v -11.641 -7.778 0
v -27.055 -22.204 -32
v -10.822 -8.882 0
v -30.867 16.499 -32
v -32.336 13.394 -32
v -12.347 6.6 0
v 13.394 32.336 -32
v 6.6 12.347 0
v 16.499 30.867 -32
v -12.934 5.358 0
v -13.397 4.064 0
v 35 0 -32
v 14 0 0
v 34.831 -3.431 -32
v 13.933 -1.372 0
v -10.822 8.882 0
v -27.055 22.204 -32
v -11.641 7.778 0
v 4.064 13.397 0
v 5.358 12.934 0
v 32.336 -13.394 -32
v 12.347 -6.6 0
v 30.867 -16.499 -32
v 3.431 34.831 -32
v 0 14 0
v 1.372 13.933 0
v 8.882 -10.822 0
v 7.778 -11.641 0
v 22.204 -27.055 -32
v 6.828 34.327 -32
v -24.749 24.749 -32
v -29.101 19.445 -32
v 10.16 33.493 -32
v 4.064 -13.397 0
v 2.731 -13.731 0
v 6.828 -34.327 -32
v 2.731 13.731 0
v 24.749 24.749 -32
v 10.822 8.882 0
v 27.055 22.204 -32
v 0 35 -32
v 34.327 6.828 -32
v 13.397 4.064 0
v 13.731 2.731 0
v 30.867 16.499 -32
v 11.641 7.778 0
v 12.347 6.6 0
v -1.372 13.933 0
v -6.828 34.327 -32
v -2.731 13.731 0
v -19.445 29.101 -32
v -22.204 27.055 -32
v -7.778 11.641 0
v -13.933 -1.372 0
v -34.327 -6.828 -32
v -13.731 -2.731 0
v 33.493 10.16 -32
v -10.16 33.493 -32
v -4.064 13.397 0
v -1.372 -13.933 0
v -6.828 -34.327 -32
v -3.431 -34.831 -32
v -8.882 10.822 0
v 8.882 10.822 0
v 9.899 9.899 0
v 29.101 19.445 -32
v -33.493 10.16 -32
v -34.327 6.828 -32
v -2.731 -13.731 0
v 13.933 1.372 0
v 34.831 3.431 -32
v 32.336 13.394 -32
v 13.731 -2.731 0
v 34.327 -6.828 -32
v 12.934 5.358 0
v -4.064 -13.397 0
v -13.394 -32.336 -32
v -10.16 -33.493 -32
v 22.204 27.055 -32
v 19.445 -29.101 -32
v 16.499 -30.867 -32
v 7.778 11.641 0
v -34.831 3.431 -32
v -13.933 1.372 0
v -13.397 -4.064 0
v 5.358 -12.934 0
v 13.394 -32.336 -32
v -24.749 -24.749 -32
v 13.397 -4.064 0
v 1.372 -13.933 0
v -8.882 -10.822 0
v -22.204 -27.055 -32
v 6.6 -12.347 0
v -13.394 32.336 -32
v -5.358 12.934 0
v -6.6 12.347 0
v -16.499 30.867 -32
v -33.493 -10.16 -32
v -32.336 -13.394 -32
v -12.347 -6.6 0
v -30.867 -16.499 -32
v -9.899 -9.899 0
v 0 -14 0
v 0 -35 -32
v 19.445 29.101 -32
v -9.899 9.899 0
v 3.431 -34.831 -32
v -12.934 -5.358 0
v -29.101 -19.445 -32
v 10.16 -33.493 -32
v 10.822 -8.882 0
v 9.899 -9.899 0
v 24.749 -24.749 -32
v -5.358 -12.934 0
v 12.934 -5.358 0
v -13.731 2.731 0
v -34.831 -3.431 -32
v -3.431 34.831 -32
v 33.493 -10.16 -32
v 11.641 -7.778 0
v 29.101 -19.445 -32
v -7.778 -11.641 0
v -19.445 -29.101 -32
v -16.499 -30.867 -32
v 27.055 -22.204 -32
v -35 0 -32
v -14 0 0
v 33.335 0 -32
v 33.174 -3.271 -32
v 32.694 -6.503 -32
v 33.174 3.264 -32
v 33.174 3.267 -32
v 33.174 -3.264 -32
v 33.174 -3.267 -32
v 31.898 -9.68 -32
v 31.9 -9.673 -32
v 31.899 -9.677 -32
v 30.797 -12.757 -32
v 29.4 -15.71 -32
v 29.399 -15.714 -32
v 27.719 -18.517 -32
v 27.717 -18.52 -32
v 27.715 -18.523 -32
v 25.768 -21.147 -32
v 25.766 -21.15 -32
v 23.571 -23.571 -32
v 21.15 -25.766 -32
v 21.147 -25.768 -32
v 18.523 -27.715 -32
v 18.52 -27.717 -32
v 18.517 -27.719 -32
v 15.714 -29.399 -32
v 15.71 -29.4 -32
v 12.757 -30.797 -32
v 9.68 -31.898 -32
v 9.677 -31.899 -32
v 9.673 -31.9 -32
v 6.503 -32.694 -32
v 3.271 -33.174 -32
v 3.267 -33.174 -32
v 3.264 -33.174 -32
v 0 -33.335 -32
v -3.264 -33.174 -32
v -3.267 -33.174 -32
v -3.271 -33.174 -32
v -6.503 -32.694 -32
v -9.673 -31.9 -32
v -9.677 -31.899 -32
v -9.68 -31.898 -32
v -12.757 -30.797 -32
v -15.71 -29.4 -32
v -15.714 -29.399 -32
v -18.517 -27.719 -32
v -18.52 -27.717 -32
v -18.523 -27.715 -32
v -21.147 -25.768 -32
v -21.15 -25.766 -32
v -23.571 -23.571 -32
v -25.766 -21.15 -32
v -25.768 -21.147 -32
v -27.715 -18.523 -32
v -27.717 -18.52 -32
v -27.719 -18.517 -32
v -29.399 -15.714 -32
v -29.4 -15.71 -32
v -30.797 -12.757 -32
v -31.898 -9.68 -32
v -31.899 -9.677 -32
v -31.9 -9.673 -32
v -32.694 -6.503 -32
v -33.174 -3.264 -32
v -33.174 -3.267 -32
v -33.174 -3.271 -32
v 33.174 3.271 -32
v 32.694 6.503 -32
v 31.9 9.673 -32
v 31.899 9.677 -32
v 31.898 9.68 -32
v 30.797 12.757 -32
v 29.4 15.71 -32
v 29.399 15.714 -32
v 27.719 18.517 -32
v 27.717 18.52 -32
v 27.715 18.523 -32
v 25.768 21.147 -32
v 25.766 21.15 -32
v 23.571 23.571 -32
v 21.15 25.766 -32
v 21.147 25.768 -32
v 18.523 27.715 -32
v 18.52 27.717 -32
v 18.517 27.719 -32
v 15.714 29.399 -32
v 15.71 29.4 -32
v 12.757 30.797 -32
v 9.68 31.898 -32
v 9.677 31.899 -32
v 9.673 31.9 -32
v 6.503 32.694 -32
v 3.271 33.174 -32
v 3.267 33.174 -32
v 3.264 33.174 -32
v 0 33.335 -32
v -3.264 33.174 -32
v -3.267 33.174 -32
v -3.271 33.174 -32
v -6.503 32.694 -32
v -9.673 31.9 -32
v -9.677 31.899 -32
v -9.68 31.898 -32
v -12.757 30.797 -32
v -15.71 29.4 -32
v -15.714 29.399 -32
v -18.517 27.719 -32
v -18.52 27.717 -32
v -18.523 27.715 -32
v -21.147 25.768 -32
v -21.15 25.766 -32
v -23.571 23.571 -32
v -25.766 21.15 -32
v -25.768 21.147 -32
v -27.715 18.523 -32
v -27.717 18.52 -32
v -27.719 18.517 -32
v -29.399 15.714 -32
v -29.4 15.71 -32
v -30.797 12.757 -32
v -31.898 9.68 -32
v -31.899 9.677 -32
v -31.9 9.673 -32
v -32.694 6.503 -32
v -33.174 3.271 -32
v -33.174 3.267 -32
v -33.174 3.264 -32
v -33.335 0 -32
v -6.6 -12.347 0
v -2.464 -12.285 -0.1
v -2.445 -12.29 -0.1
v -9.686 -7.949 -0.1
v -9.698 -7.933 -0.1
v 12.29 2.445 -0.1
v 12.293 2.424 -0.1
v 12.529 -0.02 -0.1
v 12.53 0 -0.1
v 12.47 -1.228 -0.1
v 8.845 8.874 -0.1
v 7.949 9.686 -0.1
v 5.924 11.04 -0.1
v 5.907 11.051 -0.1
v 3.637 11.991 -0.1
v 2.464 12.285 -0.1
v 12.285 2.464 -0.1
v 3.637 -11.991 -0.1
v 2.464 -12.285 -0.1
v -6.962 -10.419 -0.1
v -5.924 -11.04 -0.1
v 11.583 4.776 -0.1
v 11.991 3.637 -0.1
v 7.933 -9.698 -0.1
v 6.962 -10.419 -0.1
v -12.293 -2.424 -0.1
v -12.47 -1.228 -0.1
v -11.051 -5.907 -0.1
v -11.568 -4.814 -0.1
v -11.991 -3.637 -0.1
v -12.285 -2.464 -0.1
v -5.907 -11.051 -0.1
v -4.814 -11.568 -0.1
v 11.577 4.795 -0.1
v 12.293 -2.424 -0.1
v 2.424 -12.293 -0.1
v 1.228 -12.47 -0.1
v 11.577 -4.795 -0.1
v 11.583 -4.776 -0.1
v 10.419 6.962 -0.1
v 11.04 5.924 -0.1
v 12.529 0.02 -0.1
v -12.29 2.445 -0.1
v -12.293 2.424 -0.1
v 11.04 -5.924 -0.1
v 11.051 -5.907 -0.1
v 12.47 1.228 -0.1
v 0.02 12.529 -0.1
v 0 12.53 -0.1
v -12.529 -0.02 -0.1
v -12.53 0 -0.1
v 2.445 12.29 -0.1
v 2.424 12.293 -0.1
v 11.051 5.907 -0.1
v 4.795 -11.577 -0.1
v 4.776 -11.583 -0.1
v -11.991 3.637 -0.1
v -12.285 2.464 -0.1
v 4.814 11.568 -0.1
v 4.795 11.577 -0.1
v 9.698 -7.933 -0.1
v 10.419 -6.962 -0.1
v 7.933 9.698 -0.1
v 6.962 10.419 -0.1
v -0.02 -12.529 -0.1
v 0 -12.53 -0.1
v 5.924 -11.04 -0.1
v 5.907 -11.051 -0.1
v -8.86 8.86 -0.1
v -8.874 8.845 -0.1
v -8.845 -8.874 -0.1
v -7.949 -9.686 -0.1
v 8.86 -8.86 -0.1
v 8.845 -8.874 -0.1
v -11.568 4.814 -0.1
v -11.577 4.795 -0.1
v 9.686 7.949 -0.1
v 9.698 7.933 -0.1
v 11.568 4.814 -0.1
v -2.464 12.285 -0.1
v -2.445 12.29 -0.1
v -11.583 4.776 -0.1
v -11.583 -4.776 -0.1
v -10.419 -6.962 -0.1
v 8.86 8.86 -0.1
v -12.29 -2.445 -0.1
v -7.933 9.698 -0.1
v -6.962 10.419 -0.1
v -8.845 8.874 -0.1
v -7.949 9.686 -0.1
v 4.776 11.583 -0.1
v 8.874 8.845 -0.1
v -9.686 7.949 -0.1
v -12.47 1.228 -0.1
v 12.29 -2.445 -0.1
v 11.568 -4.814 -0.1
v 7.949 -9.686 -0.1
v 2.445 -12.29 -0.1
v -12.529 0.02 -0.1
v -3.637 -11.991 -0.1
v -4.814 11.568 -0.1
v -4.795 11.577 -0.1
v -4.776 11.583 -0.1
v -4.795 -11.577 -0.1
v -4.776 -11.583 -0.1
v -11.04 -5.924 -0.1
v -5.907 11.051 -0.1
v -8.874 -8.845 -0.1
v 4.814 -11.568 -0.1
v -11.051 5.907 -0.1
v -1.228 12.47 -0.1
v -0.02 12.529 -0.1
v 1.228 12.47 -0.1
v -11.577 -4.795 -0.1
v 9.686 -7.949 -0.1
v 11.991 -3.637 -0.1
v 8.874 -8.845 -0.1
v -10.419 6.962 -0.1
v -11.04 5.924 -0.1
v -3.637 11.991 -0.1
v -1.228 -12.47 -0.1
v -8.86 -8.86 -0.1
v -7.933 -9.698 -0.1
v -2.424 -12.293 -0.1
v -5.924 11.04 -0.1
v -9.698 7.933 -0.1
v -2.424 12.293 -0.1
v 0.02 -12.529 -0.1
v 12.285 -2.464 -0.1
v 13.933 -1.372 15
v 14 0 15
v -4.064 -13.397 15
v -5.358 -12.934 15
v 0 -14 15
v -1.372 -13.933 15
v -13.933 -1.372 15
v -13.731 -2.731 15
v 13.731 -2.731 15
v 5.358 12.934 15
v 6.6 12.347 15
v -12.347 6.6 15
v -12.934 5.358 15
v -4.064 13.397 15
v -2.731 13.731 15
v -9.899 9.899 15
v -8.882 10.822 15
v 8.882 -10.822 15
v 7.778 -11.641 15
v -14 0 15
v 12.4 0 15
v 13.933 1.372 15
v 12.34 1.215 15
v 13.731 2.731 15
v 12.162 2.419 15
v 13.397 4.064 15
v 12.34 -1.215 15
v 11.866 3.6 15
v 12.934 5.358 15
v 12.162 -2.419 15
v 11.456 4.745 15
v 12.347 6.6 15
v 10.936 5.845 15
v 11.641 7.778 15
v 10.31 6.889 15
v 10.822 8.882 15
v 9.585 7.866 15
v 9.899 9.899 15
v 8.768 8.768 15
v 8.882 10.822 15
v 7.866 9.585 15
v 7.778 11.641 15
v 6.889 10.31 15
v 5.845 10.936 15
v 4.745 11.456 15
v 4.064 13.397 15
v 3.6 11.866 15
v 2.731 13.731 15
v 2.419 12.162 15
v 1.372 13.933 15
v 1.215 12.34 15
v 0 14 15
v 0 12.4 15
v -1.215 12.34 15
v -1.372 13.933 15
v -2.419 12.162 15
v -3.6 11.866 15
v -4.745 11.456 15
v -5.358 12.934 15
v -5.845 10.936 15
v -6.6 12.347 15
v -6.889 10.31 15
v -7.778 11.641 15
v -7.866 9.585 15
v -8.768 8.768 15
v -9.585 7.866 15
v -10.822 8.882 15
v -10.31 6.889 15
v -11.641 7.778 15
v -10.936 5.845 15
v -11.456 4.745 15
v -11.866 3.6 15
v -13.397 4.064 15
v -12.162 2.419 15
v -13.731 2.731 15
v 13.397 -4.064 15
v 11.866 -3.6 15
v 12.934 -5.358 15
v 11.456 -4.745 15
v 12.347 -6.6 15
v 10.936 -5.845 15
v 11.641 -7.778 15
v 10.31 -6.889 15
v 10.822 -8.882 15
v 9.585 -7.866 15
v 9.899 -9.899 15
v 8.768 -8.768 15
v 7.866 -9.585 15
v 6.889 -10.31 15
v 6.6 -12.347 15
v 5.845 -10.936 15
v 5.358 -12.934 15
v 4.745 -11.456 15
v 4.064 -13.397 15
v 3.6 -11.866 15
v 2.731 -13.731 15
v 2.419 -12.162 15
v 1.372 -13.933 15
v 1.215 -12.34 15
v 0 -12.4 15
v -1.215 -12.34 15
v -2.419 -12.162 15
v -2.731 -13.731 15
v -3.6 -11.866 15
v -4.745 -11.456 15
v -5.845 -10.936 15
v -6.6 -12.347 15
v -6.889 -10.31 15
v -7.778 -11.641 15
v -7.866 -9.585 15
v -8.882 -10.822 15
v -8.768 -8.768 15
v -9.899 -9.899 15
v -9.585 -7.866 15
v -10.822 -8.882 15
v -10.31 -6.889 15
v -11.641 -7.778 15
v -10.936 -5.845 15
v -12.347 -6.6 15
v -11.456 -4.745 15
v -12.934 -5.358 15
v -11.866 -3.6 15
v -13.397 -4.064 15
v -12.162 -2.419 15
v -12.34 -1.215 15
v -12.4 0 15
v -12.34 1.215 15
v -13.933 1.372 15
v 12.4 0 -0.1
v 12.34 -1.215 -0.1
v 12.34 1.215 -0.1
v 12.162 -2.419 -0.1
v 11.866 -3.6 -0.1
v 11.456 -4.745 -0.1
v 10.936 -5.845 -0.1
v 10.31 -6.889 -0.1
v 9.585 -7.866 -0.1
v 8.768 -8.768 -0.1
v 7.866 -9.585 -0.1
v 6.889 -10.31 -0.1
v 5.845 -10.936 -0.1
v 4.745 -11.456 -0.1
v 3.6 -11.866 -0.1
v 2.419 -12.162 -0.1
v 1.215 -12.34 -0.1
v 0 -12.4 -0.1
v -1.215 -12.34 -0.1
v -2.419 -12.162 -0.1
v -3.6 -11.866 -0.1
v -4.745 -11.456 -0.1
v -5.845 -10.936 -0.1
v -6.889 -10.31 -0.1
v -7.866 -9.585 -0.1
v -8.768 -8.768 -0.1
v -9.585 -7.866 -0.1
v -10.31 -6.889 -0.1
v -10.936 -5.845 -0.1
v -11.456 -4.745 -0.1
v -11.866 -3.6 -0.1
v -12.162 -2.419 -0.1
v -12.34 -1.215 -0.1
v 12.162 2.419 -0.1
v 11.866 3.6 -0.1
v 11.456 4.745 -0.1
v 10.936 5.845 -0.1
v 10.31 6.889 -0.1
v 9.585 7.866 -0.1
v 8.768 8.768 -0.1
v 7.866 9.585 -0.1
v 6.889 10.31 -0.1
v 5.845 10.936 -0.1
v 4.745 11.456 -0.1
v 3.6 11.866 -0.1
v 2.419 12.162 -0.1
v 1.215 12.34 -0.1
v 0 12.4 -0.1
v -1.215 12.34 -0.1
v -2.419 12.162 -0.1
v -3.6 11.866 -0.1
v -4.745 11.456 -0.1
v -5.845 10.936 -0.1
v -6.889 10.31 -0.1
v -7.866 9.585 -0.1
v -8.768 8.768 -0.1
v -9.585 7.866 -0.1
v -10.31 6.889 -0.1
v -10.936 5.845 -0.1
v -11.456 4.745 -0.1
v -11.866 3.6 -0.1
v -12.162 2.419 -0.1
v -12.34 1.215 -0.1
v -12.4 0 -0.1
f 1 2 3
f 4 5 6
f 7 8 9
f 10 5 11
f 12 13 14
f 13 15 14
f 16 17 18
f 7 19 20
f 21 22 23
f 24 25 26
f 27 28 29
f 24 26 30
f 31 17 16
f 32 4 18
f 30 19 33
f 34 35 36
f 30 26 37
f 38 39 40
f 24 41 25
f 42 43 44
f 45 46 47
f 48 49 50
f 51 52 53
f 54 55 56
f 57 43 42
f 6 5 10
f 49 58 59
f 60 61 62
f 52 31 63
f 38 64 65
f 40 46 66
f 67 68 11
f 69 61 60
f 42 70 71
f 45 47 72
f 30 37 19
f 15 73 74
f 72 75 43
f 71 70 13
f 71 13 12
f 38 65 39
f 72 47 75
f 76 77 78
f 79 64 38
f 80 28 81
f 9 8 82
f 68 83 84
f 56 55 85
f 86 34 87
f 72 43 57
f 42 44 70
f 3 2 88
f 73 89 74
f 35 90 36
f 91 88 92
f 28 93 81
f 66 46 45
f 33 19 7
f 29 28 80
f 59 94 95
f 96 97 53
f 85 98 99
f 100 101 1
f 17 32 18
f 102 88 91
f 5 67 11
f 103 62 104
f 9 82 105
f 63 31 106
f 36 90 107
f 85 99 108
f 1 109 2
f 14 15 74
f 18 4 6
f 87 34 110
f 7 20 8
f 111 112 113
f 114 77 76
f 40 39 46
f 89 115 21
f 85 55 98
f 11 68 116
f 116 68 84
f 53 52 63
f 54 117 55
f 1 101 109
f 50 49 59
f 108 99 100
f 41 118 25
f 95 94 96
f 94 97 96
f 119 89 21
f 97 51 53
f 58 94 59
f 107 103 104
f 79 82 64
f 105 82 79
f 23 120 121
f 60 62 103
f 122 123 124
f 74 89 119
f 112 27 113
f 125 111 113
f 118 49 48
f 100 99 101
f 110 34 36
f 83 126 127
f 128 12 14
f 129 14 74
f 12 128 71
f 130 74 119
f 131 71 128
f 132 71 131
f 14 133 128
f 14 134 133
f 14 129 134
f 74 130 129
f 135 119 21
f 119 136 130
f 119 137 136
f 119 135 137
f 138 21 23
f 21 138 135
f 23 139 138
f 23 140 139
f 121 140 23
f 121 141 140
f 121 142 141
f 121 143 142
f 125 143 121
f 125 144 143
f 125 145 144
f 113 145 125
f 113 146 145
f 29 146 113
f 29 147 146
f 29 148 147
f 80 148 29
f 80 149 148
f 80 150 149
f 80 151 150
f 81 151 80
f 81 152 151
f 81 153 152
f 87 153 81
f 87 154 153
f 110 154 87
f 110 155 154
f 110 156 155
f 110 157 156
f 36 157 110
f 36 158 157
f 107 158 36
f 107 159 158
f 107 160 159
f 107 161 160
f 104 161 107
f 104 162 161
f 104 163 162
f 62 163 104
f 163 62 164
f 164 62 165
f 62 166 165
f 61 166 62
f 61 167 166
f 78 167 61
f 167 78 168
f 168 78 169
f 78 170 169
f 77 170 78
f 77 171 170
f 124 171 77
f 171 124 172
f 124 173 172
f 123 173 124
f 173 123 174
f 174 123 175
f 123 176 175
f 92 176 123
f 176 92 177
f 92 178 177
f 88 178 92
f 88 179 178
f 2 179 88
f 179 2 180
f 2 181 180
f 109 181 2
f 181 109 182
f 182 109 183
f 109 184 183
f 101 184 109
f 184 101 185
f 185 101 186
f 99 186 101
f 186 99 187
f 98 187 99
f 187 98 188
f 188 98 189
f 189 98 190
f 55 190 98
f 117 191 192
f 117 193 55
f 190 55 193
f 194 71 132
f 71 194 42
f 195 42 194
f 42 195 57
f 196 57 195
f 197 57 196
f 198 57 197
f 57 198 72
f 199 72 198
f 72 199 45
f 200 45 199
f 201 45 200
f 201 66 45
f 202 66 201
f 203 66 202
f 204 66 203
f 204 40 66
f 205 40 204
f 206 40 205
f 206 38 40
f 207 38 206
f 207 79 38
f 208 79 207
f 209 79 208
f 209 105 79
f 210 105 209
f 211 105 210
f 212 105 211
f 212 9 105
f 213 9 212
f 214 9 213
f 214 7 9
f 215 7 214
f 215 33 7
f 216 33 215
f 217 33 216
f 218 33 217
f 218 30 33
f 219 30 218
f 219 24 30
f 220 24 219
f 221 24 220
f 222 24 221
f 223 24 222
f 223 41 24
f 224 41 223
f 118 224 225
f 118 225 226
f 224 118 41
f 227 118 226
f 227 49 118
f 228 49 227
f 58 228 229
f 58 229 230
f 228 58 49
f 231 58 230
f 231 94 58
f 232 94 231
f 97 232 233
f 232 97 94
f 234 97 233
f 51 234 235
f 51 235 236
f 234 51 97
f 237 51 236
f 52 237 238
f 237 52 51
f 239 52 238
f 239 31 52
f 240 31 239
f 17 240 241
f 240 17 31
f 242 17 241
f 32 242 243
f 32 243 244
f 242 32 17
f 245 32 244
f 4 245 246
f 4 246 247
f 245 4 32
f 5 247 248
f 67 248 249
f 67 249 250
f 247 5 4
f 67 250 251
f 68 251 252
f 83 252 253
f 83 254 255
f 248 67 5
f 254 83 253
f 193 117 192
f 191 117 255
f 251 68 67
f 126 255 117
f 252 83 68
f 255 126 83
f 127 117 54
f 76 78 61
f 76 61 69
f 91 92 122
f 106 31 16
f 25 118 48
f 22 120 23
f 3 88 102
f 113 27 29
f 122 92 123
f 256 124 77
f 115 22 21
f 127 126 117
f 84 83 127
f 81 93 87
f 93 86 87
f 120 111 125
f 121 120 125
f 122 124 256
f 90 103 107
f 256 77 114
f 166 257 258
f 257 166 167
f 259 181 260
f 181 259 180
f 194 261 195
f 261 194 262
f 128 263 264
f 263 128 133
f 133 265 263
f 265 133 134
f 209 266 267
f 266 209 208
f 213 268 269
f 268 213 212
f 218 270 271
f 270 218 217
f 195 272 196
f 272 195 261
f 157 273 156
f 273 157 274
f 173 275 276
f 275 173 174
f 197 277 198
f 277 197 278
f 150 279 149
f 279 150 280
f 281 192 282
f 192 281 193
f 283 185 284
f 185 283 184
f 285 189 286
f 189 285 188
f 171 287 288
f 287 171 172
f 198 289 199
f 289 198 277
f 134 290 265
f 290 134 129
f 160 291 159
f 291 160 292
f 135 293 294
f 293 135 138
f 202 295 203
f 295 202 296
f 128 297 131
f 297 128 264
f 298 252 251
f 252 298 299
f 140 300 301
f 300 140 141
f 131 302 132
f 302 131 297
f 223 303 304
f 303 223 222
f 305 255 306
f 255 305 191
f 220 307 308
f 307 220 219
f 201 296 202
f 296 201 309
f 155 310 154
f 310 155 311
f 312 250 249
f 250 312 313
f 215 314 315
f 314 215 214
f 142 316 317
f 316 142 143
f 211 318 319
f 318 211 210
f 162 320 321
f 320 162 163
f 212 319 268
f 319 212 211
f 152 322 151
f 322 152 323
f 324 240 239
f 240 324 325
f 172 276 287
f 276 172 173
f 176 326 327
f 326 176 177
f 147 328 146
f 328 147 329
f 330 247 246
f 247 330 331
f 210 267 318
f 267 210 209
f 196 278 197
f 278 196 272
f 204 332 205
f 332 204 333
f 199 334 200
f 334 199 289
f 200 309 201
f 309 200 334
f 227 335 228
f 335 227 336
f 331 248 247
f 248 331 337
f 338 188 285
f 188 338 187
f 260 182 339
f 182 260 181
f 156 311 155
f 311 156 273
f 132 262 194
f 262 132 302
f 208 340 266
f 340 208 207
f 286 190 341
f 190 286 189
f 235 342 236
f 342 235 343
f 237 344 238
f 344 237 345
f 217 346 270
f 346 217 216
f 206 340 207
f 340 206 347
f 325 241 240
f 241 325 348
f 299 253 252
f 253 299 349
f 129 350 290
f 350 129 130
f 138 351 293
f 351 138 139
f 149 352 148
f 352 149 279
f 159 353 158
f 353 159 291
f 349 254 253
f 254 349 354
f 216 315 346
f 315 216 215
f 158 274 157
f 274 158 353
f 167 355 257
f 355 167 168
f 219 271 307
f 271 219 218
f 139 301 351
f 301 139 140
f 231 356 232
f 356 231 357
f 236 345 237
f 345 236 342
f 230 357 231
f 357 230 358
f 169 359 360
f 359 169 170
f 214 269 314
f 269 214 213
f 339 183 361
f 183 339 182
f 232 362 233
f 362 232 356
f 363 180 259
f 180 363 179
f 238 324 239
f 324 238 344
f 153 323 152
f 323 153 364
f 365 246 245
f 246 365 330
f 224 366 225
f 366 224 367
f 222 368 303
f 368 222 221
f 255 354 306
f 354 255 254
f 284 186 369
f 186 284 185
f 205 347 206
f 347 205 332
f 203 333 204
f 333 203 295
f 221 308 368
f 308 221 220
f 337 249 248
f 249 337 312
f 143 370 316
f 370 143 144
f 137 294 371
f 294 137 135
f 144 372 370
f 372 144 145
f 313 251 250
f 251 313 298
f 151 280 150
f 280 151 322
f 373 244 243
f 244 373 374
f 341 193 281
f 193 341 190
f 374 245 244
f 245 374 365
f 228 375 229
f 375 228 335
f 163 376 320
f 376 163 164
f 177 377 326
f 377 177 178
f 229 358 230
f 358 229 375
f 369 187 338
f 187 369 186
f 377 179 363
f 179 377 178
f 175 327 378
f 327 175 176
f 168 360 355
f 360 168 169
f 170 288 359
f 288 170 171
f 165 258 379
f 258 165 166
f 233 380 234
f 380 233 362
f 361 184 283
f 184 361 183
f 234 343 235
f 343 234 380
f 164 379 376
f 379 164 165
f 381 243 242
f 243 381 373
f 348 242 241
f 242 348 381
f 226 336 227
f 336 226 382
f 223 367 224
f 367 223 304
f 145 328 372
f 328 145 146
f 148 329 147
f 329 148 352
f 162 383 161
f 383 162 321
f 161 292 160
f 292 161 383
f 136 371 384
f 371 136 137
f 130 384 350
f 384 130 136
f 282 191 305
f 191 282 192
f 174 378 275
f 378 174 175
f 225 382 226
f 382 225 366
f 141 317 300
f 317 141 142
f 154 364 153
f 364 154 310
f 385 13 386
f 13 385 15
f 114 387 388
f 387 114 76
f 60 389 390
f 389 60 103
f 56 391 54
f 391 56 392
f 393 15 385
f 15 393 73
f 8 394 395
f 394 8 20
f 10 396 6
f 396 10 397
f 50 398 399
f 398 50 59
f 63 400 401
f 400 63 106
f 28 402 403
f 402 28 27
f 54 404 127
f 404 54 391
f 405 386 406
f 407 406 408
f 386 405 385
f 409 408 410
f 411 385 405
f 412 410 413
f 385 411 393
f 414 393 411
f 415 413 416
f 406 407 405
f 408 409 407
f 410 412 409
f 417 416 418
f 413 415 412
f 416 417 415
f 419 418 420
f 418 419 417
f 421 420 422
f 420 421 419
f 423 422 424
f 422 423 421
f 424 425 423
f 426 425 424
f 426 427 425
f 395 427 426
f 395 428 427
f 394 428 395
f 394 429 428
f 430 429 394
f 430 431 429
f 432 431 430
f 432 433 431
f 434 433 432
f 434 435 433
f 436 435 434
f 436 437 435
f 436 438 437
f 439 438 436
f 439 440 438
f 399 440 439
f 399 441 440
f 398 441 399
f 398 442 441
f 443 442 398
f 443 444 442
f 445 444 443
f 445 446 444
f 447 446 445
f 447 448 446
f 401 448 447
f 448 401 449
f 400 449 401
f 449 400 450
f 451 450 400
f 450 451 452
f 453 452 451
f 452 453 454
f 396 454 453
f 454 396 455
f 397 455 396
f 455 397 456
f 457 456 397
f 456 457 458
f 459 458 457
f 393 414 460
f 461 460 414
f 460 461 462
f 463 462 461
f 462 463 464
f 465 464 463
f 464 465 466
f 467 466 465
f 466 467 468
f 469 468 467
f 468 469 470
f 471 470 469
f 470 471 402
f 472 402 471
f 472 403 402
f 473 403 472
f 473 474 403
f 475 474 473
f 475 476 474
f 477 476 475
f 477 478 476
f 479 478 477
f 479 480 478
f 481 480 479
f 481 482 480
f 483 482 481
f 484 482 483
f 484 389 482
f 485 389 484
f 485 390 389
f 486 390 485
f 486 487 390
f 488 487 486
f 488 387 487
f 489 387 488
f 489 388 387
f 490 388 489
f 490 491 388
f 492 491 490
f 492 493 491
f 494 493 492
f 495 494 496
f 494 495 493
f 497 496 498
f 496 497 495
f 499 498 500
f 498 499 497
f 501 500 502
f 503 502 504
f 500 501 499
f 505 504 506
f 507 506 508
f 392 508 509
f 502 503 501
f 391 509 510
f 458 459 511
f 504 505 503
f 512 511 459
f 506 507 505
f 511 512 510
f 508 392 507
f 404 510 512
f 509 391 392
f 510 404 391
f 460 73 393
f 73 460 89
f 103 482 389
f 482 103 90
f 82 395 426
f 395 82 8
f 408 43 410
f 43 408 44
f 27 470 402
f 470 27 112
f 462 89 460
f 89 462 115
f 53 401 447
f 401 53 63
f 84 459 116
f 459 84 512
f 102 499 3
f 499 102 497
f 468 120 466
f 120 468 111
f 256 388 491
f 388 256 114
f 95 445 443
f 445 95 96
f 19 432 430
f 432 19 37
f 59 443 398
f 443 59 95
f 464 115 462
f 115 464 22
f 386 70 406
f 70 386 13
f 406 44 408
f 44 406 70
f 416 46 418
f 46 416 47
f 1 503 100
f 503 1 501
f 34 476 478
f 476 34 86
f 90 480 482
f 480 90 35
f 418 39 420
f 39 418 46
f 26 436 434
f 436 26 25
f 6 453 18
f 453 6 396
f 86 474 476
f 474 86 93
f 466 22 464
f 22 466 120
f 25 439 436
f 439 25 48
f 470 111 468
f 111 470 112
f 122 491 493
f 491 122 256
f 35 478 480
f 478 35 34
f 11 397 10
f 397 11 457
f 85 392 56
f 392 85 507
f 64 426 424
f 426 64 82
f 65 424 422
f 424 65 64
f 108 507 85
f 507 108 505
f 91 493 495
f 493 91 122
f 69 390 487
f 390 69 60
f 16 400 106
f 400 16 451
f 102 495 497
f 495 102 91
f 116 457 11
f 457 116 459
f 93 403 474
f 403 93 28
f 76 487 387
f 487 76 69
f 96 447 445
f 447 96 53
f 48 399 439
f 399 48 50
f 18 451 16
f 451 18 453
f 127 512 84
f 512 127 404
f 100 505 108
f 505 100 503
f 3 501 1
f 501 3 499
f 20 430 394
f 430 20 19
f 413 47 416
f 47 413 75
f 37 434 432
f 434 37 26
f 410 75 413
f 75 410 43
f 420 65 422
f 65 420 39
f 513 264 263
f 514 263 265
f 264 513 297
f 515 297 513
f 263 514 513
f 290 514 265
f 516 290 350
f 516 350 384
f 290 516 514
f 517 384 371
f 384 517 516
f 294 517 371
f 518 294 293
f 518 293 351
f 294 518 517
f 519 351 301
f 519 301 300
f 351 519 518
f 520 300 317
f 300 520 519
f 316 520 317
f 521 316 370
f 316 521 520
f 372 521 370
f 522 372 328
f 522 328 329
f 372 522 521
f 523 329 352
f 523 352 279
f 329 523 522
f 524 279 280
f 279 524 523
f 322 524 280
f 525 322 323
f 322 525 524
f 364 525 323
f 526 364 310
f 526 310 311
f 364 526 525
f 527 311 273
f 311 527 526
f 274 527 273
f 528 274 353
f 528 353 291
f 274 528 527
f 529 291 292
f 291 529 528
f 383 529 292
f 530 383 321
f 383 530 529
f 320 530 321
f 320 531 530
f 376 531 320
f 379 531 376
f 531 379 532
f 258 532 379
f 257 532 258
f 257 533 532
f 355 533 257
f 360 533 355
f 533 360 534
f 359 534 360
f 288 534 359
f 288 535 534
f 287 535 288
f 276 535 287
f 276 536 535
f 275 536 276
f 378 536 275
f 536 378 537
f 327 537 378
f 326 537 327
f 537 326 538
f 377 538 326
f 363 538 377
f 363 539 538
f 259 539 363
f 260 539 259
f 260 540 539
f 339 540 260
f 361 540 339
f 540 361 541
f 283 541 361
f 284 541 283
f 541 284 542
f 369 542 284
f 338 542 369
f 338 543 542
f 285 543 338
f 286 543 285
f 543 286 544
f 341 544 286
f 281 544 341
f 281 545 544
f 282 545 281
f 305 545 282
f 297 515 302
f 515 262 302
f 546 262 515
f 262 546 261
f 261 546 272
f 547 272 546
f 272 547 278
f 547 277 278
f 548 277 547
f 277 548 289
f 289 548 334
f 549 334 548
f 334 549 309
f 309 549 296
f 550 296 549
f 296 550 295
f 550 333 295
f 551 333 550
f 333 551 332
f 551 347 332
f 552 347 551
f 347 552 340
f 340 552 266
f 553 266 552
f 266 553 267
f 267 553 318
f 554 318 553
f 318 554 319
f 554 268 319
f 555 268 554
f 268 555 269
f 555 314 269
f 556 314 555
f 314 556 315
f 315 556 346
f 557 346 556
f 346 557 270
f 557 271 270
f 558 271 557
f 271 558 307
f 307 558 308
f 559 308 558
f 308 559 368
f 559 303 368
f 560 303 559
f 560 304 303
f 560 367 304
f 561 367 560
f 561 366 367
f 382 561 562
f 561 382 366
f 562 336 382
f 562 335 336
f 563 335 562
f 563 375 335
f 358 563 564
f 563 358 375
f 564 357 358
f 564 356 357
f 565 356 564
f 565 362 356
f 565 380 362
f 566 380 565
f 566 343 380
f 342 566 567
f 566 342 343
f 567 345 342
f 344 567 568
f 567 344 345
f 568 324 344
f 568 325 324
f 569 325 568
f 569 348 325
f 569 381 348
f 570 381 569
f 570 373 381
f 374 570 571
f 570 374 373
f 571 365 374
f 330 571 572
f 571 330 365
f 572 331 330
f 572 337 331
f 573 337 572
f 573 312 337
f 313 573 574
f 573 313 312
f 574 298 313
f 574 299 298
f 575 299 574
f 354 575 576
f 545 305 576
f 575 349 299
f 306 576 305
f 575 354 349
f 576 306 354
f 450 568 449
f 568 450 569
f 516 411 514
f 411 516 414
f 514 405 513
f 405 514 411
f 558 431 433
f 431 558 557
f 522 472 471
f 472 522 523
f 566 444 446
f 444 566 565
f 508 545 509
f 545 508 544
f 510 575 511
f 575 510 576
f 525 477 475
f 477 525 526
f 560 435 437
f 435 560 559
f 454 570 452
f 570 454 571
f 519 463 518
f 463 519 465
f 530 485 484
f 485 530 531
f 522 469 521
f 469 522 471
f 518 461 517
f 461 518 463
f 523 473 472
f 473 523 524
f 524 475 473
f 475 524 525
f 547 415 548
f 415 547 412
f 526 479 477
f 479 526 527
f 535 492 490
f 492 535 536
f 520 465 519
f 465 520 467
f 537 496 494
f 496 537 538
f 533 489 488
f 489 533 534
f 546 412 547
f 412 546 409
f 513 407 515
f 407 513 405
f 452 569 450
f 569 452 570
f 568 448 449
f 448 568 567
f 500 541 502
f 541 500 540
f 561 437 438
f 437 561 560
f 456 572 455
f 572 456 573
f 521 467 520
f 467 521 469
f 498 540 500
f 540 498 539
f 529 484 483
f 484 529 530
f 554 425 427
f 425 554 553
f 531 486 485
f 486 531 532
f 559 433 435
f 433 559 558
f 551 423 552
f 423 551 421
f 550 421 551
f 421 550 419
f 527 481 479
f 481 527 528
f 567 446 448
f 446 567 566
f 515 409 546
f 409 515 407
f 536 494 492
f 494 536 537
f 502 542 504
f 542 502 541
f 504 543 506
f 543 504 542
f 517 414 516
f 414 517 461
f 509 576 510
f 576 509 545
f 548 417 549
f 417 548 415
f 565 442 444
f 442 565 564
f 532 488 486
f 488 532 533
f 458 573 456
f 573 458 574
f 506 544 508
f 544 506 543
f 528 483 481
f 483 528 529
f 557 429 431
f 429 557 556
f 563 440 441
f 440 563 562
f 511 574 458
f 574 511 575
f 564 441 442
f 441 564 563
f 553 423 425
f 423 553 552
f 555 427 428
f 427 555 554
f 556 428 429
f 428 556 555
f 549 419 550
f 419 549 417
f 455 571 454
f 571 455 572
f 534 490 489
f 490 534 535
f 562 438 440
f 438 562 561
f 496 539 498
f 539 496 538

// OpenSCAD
//
// funnel for filling spice jars
//


e = 0.1;
$fn = 64;

topd = 70;			/* top funnel diam */
neck = 28;			/* neck diam */
toph = 32;			/* top funnel height */
neckh = 15;			/* neck height */

w = 1.6;				/* wall thickness */


module funnel() {

     difference() {
	  cylinder( h=32, d1=neck, d2=topd);
	  translate( [0, 0, -e])
	       cylinder( h=toph+2*e, d1=neck-2*w, d2=topd-2*w);
     }

     translate( [0, 0, -neckh]) {
	  difference() {
	       cylinder( h=neckh+e, d=neck);
	       translate( [0, 0, -e])
		    cylinder( h=neckh+4*e, d=neck-2*w);
	  }
     }
}

rotate( [180, 0, 0])
funnel();
